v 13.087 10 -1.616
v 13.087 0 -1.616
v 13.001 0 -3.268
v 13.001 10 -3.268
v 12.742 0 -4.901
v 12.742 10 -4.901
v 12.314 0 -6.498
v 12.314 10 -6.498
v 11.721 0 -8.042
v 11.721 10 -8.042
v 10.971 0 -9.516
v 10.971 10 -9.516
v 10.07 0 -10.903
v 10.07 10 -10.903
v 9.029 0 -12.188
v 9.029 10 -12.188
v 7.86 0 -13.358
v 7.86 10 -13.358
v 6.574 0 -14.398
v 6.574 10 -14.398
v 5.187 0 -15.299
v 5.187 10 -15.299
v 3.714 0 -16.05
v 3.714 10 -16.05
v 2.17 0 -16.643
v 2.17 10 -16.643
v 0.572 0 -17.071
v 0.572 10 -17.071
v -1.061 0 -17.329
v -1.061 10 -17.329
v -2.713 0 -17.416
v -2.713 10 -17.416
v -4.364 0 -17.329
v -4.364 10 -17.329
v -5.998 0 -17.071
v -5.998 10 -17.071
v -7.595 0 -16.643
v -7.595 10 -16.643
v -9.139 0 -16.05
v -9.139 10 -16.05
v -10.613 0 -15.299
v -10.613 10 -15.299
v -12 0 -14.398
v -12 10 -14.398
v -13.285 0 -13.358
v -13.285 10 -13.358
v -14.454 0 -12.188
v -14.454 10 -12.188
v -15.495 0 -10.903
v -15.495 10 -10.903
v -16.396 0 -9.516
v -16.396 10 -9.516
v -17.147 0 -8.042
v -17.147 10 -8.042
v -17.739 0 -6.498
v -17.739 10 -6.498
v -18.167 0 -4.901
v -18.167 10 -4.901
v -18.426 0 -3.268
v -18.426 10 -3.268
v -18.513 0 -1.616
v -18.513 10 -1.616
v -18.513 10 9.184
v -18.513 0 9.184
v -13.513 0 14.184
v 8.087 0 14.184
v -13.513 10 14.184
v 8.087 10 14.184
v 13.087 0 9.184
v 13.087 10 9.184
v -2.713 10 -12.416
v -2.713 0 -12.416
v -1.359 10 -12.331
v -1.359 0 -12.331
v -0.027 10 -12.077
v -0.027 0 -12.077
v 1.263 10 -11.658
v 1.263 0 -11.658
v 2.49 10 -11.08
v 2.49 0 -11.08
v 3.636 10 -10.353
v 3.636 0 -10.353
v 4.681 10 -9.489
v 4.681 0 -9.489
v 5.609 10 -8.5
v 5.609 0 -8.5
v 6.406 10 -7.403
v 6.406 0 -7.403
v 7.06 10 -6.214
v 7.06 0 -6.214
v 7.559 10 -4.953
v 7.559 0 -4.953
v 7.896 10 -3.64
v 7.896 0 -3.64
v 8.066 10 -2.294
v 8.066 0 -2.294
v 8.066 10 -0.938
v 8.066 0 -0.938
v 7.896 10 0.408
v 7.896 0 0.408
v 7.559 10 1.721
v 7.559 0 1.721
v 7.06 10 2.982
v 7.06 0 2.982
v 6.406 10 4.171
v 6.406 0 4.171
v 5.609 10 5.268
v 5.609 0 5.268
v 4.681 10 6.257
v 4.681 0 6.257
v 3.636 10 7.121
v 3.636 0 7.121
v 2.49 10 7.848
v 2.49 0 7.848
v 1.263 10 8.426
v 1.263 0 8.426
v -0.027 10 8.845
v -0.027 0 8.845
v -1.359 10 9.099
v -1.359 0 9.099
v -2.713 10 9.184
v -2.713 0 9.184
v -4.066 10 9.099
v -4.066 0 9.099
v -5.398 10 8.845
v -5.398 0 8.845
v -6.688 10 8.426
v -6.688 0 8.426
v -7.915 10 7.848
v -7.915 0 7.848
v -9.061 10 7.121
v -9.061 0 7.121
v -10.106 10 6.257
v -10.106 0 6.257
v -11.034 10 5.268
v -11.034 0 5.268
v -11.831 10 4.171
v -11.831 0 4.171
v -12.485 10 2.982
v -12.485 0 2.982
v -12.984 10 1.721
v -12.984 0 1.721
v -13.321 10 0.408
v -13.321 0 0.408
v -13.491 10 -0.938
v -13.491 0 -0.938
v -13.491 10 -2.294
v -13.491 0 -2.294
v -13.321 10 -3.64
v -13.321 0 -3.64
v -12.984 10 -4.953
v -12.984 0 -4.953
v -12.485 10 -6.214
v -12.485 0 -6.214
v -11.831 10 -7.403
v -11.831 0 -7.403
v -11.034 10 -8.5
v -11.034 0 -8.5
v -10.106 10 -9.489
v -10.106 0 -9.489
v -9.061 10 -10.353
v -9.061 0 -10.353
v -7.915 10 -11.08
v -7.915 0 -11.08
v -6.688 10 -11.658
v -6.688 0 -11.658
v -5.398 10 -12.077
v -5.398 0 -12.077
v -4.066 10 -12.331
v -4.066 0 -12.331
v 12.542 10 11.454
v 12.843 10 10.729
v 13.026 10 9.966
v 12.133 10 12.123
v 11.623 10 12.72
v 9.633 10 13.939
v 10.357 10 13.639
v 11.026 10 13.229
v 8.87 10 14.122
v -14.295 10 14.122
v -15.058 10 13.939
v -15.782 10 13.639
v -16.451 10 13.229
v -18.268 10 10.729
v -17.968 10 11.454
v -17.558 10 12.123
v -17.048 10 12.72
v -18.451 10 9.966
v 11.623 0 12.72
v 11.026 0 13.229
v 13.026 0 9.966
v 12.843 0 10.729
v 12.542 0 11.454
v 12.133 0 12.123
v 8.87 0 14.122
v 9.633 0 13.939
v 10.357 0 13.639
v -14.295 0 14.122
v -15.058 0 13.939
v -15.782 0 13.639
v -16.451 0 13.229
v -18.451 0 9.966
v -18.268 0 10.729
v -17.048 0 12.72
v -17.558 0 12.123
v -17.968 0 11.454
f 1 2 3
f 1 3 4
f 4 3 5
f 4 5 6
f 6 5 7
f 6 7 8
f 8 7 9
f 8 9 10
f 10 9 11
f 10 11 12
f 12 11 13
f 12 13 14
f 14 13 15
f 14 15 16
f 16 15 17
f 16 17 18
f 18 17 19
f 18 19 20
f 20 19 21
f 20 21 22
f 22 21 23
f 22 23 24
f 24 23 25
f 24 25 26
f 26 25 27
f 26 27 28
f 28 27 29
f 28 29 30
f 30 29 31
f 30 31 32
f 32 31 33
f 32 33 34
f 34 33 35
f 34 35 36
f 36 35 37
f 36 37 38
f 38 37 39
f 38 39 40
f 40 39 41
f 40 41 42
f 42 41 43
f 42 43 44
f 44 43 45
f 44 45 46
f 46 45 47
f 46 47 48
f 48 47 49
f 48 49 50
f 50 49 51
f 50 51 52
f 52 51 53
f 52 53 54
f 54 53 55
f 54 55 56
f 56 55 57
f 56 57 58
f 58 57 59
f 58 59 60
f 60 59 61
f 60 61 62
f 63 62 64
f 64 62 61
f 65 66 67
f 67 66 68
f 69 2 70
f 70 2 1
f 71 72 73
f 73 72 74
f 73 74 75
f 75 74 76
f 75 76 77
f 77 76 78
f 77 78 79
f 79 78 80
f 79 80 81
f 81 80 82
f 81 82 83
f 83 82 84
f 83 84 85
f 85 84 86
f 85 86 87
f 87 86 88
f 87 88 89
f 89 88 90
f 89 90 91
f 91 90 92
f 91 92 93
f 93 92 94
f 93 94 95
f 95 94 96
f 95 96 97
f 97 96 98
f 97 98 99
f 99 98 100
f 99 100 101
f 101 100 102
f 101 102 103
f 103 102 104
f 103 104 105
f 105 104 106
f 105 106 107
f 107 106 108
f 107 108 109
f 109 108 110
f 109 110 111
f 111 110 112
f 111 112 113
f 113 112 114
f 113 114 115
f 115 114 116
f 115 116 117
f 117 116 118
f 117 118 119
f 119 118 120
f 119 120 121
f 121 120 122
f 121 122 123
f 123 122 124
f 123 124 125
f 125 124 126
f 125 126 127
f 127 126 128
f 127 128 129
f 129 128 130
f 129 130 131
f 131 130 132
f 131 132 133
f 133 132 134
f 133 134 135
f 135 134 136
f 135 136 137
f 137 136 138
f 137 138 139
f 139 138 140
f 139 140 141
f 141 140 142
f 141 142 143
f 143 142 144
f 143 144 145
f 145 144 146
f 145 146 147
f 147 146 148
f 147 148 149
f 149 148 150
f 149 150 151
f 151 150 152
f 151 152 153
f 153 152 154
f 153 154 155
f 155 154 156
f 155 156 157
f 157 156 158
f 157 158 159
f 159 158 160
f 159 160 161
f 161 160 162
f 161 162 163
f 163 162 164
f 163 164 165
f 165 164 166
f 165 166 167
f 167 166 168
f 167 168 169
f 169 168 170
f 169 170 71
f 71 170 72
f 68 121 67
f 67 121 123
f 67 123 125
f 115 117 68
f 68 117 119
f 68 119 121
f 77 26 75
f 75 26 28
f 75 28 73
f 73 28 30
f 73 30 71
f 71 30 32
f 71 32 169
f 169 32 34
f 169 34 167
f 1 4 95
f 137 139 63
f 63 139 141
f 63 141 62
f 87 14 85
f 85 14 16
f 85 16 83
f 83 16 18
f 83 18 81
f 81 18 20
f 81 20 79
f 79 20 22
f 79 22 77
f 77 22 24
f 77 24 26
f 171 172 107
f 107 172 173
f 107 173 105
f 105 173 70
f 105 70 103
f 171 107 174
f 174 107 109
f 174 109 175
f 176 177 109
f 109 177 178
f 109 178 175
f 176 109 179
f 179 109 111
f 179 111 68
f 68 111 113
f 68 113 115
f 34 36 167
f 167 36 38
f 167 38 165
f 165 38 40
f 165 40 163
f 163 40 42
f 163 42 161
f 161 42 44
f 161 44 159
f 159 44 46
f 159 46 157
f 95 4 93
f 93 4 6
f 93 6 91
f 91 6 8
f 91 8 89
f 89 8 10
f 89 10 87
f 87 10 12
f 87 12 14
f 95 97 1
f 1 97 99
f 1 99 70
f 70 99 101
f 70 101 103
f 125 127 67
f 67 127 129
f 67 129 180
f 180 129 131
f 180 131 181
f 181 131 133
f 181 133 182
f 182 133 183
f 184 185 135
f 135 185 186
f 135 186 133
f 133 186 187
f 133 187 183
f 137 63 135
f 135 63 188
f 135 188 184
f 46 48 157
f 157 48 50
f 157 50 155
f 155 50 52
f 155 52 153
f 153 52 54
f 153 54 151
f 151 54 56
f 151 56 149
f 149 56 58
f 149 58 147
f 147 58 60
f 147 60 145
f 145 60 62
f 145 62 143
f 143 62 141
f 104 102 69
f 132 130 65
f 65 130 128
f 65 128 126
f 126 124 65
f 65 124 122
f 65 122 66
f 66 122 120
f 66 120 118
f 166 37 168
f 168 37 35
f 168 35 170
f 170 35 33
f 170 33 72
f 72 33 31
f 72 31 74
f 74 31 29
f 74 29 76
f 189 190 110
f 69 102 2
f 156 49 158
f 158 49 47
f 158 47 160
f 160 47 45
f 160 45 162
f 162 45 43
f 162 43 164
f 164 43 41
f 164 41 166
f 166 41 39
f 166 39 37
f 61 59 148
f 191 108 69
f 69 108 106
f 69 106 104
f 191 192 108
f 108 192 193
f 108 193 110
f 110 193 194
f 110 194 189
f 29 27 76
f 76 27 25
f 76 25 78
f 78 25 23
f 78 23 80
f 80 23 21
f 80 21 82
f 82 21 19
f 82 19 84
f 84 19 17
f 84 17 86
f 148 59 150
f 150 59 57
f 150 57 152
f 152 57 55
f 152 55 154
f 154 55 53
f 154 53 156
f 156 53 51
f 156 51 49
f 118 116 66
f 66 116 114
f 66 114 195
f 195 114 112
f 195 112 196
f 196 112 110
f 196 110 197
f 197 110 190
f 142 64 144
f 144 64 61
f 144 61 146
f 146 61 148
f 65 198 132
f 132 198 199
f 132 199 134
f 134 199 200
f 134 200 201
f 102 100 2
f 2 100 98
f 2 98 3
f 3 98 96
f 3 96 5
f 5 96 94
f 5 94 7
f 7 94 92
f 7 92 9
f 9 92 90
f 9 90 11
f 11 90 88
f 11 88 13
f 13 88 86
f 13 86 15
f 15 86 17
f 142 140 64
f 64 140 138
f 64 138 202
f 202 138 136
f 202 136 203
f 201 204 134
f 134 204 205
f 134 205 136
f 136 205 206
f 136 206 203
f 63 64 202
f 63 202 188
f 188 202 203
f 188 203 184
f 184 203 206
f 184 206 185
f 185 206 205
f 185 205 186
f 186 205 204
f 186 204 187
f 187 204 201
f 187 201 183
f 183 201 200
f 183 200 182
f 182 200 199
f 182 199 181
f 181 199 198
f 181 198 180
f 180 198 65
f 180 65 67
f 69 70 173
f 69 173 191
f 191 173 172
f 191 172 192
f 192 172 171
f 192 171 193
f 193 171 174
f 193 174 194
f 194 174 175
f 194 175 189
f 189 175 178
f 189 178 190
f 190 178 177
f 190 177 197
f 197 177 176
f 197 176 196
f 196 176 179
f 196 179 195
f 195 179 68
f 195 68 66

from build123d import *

# Parameters (mm, degrees)
BOSS_EXTRUDE2_DEPTH = 10
FILLET1_R           = 5


with BuildPart() as part:
    # Sketch1 → Boss-Extrude2 (new body)
    with BuildSketch(Plane(origin=(0, 0, 0), x_dir=(1, 0, 0), z_dir=(0, 1, 0))):
        with BuildLine():
            ThreePointArc((-13.512538708, 1.615980507), (-2.712538708, 12.415980507), (8.087461292, 1.615980507))
            Line((8.087461292, 1.615980507), (13.087461292, 1.615980507))
            ThreePointArc((13.087461292, 1.615980507), (-2.712538708, 17.415980507), (-18.512538708, 1.615980507))
            Line((-18.512538708, 1.615980507), (-13.512538708, 1.615980507))
        make_face()
        with BuildLine():
            Line((13.087461292, 1.615980507), (8.087461292, 1.615980507))
            ThreePointArc((8.087461292, 1.615980507), (-2.712538708, -9.184019493), (-13.512538708, 1.615980507))
            Line((-13.512538708, 1.615980507), (-18.512538708, 1.615980507))
            ThreePointArc((-18.512538708, 1.615980507), (-13.884825857, -9.55630663), (-2.712538726, -14.184019493))
            ThreePointArc((-2.712538726, -14.184019493), (8.459748429, -9.556306643), (13.087461292, 1.615980507))
        make_face()
        with BuildLine():
            Line((13.087461292, -14.184019493), (13.087461292, 1.615980507))
            ThreePointArc((13.087461292, 1.615980507), (8.459748429, -9.556306643), (-2.712538726, -14.184019493))
            Line((-2.712538726, -14.184019493), (13.087461292, -14.184019493))
        make_face()
        with BuildLine():
            ThreePointArc((-2.712538726, -14.184019493), (-13.884825857, -9.55630663), (-18.512538708, 1.615980507))
            Line((-18.512538708, 1.615980507), (-18.512538708, -14.184019493))
            Line((-18.512538708, -14.184019493), (-2.712538726, -14.184019493))
        make_face()
    extrude(amount=BOSS_EXTRUDE2_DEPTH)

    # Fillet1
    fillet1_edges = [part.edges().sort_by_distance(p)[0] for p in [
        (13.087461292, 5, 14.184019493),
        (-18.512538708, 5, 14.184019493),
    ]]
    fillet(fillet1_edges, radius=FILLET1_R)


solid = part.part
